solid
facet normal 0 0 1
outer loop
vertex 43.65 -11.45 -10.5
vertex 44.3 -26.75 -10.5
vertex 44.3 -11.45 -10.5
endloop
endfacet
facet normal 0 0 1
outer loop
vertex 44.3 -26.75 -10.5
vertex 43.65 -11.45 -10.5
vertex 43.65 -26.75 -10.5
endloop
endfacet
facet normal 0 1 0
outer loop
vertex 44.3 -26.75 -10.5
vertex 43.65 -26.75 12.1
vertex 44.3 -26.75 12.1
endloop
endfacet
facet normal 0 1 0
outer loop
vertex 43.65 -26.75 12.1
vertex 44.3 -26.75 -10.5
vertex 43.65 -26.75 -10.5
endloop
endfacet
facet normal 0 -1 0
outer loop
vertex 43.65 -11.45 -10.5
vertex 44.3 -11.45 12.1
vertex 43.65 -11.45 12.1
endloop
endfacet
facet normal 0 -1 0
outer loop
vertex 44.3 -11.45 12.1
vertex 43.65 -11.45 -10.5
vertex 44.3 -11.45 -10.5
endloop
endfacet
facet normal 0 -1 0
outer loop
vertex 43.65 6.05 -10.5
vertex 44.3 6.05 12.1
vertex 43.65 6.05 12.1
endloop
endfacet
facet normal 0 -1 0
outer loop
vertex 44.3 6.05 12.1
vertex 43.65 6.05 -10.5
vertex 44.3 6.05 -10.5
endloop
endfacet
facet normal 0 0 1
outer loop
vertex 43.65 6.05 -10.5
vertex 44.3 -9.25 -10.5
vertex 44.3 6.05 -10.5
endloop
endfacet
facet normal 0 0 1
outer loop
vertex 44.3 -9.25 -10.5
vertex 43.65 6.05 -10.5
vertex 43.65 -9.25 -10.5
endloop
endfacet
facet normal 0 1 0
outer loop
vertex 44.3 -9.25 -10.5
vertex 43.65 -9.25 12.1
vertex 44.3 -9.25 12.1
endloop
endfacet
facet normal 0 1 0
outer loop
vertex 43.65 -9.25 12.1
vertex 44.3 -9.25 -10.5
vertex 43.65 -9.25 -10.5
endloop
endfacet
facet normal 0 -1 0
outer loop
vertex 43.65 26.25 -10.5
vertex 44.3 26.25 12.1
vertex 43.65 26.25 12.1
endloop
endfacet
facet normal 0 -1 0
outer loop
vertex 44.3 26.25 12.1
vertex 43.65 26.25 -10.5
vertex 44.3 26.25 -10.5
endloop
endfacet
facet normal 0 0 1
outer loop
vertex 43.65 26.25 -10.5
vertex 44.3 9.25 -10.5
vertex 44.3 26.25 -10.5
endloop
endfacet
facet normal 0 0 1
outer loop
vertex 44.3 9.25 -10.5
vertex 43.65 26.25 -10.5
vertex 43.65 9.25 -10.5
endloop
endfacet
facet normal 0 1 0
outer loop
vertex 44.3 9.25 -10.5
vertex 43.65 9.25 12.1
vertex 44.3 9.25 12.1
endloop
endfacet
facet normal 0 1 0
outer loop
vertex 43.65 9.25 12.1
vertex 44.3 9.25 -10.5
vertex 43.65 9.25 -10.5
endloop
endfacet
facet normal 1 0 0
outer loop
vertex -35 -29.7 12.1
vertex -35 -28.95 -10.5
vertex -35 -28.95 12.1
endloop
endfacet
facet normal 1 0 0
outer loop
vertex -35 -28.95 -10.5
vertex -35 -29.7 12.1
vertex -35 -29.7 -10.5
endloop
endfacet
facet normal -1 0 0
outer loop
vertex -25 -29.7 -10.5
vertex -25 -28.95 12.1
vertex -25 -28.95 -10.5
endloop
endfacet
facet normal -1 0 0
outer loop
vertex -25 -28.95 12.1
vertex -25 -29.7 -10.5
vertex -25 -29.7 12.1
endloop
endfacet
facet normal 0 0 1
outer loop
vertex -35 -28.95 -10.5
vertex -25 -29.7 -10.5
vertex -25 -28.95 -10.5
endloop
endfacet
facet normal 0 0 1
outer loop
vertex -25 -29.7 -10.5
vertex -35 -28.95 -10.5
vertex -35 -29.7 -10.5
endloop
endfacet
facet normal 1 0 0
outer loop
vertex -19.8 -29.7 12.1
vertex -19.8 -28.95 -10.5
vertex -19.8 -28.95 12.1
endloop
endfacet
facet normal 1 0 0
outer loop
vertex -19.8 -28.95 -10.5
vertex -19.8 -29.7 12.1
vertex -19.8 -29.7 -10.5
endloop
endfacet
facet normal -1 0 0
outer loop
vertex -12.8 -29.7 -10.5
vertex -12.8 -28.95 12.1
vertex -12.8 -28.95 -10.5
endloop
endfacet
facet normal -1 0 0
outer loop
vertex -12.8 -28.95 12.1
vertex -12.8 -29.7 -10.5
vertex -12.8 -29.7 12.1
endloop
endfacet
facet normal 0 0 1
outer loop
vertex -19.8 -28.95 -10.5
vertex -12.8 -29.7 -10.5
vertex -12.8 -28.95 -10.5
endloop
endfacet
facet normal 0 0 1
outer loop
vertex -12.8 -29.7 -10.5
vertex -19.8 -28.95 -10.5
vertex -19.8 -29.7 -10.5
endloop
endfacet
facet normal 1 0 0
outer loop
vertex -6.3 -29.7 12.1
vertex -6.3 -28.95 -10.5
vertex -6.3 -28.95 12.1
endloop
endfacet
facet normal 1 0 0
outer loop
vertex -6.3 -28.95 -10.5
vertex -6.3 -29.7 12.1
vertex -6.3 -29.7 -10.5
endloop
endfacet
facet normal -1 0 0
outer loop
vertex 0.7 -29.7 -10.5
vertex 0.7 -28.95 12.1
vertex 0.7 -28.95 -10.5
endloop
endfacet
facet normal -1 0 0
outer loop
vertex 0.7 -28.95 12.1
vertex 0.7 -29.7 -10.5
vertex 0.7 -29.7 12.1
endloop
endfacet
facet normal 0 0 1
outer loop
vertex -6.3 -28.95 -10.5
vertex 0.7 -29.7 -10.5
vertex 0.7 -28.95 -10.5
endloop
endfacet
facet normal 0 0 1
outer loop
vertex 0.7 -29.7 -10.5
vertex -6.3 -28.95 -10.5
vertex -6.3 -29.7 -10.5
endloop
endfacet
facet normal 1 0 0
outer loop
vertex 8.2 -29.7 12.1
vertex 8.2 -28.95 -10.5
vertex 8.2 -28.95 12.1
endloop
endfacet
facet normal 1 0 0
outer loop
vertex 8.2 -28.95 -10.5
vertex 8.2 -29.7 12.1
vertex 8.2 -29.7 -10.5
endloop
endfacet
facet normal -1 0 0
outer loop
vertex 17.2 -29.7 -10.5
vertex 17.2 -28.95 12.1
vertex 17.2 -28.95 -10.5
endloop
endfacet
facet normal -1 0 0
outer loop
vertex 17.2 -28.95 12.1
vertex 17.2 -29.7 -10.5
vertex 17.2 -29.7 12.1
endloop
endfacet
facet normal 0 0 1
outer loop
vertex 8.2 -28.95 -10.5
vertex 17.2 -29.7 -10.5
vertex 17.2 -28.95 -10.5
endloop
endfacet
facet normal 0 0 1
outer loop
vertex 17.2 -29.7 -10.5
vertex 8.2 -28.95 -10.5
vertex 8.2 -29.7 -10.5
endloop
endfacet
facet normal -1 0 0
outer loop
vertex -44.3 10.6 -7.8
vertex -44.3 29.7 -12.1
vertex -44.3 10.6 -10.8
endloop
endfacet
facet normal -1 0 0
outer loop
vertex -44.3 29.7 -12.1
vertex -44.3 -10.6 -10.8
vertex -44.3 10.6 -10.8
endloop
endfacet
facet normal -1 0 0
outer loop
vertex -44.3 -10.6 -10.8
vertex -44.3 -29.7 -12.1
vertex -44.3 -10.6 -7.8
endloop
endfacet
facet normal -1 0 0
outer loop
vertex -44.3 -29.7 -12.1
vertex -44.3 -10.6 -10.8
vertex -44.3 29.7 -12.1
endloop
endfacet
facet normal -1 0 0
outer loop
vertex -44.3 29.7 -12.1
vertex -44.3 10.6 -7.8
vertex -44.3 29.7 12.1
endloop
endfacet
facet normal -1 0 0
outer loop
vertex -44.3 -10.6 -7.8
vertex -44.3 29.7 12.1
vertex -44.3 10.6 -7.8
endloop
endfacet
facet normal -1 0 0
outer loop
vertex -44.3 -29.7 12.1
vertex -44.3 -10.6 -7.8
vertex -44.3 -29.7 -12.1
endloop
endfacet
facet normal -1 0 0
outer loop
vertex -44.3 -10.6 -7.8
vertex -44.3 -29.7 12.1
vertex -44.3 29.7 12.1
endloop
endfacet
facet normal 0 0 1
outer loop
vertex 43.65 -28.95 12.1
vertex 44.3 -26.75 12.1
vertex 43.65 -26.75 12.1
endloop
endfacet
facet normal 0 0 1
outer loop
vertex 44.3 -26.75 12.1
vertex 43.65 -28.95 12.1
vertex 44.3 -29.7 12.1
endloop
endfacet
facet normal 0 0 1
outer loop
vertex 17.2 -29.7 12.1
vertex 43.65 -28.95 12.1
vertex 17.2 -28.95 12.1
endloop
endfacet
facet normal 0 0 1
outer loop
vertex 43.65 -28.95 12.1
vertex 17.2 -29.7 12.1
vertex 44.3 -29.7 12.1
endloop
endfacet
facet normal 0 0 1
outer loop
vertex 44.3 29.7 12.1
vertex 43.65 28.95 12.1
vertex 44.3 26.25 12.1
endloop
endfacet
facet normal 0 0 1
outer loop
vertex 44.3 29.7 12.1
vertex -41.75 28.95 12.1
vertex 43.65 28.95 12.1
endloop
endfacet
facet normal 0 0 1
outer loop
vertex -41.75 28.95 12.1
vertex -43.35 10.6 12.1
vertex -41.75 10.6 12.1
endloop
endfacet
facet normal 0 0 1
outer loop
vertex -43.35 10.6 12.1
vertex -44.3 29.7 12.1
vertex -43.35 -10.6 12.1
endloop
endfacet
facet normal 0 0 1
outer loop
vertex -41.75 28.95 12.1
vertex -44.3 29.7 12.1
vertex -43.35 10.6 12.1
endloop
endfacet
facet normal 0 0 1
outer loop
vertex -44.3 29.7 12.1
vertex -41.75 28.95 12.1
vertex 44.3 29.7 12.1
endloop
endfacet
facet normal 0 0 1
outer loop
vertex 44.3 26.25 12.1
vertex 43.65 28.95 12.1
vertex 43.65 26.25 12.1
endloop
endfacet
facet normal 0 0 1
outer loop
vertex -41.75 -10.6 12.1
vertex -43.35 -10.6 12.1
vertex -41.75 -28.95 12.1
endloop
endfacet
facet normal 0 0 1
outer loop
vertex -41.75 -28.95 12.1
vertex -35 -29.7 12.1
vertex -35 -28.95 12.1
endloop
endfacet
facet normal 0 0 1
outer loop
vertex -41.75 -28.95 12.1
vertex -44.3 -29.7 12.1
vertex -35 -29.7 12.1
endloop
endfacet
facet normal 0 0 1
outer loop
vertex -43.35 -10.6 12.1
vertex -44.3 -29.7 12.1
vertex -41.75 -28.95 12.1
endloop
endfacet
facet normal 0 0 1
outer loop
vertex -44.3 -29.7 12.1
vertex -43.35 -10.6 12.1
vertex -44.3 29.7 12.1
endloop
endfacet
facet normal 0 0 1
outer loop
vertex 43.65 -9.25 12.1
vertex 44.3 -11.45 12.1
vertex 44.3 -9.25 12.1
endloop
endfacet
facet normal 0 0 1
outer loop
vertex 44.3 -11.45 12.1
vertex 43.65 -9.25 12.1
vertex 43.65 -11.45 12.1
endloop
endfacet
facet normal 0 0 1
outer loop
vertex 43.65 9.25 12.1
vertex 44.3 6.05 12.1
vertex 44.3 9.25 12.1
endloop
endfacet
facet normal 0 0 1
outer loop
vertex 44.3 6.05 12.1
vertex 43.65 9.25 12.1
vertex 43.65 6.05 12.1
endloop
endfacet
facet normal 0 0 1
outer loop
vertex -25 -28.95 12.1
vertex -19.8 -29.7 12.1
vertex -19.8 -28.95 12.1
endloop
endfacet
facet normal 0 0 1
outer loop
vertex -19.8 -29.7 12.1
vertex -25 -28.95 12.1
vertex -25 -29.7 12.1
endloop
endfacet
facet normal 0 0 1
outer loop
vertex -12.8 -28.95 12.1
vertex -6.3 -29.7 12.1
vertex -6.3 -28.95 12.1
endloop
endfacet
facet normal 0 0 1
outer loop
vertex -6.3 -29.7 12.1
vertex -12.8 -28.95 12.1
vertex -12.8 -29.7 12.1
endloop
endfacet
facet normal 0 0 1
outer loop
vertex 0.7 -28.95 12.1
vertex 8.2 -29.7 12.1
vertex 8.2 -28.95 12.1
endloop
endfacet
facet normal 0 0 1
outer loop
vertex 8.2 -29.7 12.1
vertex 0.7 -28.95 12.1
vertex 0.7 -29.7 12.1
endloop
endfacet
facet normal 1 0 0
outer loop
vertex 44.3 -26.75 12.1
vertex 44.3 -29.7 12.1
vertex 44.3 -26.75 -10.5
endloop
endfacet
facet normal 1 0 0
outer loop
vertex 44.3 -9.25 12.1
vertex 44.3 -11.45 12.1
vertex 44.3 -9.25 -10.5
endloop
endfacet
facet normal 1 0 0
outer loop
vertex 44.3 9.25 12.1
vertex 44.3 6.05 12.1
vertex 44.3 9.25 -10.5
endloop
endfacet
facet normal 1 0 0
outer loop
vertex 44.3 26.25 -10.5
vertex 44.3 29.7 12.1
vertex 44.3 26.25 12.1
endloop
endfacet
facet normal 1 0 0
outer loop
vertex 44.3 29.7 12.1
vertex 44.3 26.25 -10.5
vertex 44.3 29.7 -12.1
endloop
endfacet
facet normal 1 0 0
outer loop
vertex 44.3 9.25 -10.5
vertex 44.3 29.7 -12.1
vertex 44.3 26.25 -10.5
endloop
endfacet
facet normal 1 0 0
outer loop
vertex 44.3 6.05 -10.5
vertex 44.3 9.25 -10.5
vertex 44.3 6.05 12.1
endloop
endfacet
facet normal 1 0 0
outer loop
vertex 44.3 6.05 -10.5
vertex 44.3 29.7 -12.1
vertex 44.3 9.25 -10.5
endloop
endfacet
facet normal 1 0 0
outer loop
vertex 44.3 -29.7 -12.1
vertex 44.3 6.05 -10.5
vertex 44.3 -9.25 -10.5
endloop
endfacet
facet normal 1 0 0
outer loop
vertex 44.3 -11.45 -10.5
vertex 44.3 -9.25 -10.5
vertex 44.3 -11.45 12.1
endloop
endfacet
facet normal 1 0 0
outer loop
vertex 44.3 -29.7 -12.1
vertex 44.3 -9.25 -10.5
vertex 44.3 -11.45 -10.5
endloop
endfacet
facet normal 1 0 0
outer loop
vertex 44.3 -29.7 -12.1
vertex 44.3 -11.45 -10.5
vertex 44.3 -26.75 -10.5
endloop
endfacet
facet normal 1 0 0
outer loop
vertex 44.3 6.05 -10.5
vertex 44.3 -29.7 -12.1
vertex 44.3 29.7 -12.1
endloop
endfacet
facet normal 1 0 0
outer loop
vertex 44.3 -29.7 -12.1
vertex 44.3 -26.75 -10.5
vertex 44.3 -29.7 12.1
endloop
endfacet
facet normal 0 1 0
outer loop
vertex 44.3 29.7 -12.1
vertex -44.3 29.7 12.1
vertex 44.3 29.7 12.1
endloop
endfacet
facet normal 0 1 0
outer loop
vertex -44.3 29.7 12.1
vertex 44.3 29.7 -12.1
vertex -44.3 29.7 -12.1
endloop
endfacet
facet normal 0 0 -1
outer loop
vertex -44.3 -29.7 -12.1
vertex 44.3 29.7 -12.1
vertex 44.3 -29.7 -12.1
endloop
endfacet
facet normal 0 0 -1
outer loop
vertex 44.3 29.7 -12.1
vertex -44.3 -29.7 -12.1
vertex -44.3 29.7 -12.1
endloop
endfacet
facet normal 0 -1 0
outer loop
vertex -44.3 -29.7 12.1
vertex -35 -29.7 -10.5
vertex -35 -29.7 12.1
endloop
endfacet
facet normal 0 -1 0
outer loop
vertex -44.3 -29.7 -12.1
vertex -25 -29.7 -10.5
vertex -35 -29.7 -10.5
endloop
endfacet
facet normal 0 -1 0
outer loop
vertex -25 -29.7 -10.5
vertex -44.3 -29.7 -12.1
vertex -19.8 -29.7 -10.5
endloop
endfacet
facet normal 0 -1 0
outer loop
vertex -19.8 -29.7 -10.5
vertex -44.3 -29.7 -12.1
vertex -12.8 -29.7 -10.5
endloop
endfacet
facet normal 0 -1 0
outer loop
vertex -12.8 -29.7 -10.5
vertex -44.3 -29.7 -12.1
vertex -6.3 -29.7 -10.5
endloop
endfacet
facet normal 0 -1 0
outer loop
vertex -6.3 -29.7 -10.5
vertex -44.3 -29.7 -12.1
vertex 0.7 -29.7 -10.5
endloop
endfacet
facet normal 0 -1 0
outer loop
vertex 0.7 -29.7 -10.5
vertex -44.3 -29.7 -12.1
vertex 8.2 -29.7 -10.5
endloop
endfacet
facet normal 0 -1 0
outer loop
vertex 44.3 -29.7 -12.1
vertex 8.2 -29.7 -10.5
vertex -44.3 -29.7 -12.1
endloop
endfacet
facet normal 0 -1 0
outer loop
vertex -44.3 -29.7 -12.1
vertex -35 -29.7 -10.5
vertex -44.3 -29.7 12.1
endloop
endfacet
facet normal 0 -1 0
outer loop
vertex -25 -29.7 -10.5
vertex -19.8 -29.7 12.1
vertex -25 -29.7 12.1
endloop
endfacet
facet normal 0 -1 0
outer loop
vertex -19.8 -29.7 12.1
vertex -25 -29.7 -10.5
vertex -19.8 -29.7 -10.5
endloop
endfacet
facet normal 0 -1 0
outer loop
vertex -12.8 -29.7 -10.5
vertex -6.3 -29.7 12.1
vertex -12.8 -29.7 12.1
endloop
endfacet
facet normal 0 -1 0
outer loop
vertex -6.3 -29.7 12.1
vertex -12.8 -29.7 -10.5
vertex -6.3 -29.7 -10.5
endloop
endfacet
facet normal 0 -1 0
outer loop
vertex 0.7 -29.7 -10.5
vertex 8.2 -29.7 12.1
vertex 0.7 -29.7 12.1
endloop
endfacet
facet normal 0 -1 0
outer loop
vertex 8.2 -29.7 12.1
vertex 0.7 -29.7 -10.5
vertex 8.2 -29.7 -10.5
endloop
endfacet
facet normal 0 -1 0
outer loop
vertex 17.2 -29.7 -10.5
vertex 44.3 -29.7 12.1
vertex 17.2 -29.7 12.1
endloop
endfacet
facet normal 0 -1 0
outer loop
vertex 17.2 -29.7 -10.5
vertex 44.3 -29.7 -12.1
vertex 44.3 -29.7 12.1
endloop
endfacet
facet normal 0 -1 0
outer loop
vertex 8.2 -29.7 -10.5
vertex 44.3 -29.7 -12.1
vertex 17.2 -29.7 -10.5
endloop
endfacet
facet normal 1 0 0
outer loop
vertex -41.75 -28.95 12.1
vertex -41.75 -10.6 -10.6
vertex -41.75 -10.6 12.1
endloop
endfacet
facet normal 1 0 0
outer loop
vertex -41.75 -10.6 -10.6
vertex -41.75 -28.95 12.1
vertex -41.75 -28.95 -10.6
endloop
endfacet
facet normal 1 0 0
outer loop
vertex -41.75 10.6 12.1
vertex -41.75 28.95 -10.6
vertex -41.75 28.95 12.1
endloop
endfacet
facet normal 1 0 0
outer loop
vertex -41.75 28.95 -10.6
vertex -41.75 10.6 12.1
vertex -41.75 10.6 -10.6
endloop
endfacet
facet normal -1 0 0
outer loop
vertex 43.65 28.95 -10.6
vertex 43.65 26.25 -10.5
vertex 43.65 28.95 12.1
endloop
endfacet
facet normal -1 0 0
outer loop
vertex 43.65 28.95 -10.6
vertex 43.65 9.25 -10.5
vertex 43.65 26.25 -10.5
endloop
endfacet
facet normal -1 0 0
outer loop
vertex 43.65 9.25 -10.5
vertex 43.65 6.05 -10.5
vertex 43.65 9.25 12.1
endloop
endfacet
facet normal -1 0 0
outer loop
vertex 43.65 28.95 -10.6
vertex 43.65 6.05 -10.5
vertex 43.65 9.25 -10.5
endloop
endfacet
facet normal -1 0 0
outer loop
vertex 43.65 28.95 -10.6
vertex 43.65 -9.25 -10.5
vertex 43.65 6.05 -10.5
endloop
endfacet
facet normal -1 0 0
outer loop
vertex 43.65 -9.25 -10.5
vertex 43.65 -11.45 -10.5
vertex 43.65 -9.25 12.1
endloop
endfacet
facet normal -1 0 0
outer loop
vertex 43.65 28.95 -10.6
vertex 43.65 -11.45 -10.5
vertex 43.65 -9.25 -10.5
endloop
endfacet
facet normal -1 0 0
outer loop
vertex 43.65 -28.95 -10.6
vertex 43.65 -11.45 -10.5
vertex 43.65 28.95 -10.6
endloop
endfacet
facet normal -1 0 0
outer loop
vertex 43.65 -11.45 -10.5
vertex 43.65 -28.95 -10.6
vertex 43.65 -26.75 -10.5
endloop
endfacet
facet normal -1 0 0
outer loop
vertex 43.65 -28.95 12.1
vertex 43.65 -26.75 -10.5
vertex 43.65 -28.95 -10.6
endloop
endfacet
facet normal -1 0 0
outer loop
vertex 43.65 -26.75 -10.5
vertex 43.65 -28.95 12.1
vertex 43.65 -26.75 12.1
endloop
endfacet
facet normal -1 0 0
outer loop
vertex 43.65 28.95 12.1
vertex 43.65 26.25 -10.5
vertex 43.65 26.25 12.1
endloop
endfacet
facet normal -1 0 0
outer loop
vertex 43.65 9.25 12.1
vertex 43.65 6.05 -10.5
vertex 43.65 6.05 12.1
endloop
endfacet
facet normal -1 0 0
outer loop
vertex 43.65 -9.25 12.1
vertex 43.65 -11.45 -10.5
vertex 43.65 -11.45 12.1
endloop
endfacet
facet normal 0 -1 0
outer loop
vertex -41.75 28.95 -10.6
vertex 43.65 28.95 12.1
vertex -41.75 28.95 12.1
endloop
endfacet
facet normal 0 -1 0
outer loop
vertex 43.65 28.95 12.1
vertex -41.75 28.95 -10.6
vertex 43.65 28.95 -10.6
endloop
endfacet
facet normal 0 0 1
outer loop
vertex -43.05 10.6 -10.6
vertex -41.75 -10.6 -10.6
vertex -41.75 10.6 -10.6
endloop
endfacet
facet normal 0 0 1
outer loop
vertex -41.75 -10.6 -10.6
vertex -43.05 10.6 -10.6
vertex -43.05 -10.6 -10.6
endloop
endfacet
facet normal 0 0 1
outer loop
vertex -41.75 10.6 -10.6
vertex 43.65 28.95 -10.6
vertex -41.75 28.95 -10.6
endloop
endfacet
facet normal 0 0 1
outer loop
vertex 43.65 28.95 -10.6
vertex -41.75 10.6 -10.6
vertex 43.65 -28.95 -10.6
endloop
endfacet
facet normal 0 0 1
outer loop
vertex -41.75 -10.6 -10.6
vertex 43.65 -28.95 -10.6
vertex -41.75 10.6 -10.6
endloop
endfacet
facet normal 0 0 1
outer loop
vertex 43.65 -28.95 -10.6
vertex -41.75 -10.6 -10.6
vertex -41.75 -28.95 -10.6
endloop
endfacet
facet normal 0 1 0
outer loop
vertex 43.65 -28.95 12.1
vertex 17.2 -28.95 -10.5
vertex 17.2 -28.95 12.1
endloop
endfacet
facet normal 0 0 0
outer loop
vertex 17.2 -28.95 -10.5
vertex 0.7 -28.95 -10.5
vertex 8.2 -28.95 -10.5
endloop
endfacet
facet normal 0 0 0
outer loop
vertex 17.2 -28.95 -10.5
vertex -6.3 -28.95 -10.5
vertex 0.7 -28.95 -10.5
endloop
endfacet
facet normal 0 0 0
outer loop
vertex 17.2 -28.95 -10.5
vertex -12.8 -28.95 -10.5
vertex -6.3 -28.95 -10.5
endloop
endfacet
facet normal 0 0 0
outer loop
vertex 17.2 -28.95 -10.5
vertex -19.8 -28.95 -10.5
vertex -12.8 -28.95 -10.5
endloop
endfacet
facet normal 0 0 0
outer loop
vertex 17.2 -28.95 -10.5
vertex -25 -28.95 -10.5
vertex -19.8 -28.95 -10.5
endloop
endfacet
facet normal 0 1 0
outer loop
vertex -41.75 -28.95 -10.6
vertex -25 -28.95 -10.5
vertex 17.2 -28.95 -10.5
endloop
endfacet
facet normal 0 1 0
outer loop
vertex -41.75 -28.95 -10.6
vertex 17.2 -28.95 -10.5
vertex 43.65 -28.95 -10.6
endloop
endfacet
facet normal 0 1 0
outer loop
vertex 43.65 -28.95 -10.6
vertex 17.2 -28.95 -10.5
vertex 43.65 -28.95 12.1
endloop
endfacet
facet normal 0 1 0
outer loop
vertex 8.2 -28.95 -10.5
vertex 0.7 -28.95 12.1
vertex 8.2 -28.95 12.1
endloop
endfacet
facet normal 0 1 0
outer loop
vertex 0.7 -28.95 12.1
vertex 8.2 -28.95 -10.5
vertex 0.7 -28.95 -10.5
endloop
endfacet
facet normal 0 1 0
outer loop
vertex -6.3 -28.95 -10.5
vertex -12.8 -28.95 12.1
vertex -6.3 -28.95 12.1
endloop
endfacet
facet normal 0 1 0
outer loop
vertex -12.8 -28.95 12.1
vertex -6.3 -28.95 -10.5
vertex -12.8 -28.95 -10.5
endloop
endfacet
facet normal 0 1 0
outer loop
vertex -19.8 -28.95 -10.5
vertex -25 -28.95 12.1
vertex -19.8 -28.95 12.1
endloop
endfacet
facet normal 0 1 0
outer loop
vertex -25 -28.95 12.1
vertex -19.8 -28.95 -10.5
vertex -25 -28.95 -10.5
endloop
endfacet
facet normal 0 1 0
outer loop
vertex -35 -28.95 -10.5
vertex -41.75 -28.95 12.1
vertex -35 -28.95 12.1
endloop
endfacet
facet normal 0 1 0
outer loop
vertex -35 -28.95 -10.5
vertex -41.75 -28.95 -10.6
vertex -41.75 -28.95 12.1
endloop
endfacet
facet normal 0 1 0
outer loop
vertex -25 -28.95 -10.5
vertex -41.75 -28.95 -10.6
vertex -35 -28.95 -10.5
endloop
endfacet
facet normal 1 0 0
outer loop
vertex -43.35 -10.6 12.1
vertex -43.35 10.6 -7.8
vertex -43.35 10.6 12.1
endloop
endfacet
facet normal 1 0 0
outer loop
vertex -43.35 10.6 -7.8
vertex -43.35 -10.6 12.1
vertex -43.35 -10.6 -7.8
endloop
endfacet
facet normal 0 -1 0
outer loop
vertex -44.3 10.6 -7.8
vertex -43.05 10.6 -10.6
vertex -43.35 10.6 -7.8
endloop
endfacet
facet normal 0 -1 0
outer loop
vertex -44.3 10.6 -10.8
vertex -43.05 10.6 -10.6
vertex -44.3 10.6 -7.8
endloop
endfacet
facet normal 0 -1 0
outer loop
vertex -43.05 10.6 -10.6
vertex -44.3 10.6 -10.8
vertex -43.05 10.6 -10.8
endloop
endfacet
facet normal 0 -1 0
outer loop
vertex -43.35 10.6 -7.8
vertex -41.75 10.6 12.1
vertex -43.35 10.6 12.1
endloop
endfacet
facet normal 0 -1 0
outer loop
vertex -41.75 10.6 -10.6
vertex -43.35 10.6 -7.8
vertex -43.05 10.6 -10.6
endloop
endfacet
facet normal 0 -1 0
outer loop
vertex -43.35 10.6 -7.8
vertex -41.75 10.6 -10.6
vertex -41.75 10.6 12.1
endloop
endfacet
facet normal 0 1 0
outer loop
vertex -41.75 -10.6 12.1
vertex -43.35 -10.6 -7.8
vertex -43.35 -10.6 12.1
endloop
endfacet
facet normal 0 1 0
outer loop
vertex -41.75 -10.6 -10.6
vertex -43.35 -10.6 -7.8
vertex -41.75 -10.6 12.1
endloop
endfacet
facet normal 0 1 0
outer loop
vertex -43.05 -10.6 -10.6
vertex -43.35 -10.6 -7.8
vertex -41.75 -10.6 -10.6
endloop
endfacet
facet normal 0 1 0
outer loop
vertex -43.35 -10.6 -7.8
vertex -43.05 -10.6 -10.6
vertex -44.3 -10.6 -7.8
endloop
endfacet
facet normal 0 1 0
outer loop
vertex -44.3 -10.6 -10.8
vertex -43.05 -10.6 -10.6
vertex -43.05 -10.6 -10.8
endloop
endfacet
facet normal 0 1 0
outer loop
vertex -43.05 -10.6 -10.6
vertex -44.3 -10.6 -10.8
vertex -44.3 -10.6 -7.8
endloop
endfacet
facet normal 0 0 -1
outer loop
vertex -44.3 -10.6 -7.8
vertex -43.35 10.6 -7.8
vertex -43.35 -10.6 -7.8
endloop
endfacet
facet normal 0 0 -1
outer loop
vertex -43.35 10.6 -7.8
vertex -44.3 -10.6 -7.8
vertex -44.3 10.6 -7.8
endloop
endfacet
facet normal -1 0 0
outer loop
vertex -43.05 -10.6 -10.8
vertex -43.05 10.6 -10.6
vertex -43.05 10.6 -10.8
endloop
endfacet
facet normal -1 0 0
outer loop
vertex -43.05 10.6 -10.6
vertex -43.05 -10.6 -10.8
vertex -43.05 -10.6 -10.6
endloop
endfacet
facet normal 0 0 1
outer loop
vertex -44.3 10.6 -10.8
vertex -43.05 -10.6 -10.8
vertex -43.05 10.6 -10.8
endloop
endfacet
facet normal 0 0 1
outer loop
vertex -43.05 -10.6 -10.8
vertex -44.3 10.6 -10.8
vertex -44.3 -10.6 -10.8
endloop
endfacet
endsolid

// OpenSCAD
module base_bottom() {
	pi_x = 85;
	sd_x = 1.5;
	sd_y = 21;
	sd_z = 1;
	plug_x = 2;

	pi_y = 57.5;

	pi_z = 23.0;

	wall_thickness = .75;
	pi_x_clearance = .2;
	pi_y_clearance = .2;
	pi_z_clearance = .2;

	sd_x_clearance = .2;
	sd_y_clearance = .2;
	sd_z_clearance = 1;

	floor_width = 1;

	//Double the - clearance for the SD
	base_block_x = sd_x + pi_x + wall_thickness*2 + pi_x_clearance*2+ sd_x_clearance;

	base_block_y = pi_y + pi_y_clearance*2 + wall_thickness*2;
	base_block_z = floor_width + pi_z + pi_z_clearance;

	difference(){
		cube([base_block_x, base_block_y, base_block_z], 
				center=true);

		//Pi hole
		//Move 1 pi_x_clearance for SD card
		translate([sd_x/2 + sd_x_clearance,0,floor_width])
			cube([pi_x+pi_y_clearance*2, pi_y+pi_y_clearance*2, pi_z+pi_z_clearance],
					center=true);

		translate([-pi_x/2,0,40/2+-pi_z/2 - pi_z_clearance/2+floor_width])
			//SD hole
			cube([sd_x+sd_x_clearance,sd_y+sd_y_clearance, 40],
					center=true);
		translate([-pi_x/2 - sd_x,0, -pi_z/2 + floor_width + sd_z_clearance +pi_z_clearance])
			cube([sd_x+sd_x_clearance*2,sd_y+sd_y_clearance, sd_z + sd_z_clearance*2],
					center=true);


		//Ethernet, USBs
		translate([pi_x/2,-pi_y/2 +.5,-pi_z/2+floor_width]){
			translate([0,1.5,0])
				cube([10,15.3,25]);

			translate([0, 19, 0])
				cube([10,15.3, 25]);

			translate([0,37.5,0])
				cube([10,17,25]);
		}

		translate([-pi_x/2 +1.5 + pi_x_clearance, -pi_y/2-5, -pi_z/2+floor_width]){
			// Power, HDMI, Headphones
			translate([5.8,0,0])
				cube([10,10,25]);

			translate([21, 0, 0])
				cube([7,10,25]);

			translate([34.5, 0, 0])
				cube([7,10,25]);

			translate([49,0,0])
				cube([9, 10, 25]);
		}
	}
}
base_bottom();
